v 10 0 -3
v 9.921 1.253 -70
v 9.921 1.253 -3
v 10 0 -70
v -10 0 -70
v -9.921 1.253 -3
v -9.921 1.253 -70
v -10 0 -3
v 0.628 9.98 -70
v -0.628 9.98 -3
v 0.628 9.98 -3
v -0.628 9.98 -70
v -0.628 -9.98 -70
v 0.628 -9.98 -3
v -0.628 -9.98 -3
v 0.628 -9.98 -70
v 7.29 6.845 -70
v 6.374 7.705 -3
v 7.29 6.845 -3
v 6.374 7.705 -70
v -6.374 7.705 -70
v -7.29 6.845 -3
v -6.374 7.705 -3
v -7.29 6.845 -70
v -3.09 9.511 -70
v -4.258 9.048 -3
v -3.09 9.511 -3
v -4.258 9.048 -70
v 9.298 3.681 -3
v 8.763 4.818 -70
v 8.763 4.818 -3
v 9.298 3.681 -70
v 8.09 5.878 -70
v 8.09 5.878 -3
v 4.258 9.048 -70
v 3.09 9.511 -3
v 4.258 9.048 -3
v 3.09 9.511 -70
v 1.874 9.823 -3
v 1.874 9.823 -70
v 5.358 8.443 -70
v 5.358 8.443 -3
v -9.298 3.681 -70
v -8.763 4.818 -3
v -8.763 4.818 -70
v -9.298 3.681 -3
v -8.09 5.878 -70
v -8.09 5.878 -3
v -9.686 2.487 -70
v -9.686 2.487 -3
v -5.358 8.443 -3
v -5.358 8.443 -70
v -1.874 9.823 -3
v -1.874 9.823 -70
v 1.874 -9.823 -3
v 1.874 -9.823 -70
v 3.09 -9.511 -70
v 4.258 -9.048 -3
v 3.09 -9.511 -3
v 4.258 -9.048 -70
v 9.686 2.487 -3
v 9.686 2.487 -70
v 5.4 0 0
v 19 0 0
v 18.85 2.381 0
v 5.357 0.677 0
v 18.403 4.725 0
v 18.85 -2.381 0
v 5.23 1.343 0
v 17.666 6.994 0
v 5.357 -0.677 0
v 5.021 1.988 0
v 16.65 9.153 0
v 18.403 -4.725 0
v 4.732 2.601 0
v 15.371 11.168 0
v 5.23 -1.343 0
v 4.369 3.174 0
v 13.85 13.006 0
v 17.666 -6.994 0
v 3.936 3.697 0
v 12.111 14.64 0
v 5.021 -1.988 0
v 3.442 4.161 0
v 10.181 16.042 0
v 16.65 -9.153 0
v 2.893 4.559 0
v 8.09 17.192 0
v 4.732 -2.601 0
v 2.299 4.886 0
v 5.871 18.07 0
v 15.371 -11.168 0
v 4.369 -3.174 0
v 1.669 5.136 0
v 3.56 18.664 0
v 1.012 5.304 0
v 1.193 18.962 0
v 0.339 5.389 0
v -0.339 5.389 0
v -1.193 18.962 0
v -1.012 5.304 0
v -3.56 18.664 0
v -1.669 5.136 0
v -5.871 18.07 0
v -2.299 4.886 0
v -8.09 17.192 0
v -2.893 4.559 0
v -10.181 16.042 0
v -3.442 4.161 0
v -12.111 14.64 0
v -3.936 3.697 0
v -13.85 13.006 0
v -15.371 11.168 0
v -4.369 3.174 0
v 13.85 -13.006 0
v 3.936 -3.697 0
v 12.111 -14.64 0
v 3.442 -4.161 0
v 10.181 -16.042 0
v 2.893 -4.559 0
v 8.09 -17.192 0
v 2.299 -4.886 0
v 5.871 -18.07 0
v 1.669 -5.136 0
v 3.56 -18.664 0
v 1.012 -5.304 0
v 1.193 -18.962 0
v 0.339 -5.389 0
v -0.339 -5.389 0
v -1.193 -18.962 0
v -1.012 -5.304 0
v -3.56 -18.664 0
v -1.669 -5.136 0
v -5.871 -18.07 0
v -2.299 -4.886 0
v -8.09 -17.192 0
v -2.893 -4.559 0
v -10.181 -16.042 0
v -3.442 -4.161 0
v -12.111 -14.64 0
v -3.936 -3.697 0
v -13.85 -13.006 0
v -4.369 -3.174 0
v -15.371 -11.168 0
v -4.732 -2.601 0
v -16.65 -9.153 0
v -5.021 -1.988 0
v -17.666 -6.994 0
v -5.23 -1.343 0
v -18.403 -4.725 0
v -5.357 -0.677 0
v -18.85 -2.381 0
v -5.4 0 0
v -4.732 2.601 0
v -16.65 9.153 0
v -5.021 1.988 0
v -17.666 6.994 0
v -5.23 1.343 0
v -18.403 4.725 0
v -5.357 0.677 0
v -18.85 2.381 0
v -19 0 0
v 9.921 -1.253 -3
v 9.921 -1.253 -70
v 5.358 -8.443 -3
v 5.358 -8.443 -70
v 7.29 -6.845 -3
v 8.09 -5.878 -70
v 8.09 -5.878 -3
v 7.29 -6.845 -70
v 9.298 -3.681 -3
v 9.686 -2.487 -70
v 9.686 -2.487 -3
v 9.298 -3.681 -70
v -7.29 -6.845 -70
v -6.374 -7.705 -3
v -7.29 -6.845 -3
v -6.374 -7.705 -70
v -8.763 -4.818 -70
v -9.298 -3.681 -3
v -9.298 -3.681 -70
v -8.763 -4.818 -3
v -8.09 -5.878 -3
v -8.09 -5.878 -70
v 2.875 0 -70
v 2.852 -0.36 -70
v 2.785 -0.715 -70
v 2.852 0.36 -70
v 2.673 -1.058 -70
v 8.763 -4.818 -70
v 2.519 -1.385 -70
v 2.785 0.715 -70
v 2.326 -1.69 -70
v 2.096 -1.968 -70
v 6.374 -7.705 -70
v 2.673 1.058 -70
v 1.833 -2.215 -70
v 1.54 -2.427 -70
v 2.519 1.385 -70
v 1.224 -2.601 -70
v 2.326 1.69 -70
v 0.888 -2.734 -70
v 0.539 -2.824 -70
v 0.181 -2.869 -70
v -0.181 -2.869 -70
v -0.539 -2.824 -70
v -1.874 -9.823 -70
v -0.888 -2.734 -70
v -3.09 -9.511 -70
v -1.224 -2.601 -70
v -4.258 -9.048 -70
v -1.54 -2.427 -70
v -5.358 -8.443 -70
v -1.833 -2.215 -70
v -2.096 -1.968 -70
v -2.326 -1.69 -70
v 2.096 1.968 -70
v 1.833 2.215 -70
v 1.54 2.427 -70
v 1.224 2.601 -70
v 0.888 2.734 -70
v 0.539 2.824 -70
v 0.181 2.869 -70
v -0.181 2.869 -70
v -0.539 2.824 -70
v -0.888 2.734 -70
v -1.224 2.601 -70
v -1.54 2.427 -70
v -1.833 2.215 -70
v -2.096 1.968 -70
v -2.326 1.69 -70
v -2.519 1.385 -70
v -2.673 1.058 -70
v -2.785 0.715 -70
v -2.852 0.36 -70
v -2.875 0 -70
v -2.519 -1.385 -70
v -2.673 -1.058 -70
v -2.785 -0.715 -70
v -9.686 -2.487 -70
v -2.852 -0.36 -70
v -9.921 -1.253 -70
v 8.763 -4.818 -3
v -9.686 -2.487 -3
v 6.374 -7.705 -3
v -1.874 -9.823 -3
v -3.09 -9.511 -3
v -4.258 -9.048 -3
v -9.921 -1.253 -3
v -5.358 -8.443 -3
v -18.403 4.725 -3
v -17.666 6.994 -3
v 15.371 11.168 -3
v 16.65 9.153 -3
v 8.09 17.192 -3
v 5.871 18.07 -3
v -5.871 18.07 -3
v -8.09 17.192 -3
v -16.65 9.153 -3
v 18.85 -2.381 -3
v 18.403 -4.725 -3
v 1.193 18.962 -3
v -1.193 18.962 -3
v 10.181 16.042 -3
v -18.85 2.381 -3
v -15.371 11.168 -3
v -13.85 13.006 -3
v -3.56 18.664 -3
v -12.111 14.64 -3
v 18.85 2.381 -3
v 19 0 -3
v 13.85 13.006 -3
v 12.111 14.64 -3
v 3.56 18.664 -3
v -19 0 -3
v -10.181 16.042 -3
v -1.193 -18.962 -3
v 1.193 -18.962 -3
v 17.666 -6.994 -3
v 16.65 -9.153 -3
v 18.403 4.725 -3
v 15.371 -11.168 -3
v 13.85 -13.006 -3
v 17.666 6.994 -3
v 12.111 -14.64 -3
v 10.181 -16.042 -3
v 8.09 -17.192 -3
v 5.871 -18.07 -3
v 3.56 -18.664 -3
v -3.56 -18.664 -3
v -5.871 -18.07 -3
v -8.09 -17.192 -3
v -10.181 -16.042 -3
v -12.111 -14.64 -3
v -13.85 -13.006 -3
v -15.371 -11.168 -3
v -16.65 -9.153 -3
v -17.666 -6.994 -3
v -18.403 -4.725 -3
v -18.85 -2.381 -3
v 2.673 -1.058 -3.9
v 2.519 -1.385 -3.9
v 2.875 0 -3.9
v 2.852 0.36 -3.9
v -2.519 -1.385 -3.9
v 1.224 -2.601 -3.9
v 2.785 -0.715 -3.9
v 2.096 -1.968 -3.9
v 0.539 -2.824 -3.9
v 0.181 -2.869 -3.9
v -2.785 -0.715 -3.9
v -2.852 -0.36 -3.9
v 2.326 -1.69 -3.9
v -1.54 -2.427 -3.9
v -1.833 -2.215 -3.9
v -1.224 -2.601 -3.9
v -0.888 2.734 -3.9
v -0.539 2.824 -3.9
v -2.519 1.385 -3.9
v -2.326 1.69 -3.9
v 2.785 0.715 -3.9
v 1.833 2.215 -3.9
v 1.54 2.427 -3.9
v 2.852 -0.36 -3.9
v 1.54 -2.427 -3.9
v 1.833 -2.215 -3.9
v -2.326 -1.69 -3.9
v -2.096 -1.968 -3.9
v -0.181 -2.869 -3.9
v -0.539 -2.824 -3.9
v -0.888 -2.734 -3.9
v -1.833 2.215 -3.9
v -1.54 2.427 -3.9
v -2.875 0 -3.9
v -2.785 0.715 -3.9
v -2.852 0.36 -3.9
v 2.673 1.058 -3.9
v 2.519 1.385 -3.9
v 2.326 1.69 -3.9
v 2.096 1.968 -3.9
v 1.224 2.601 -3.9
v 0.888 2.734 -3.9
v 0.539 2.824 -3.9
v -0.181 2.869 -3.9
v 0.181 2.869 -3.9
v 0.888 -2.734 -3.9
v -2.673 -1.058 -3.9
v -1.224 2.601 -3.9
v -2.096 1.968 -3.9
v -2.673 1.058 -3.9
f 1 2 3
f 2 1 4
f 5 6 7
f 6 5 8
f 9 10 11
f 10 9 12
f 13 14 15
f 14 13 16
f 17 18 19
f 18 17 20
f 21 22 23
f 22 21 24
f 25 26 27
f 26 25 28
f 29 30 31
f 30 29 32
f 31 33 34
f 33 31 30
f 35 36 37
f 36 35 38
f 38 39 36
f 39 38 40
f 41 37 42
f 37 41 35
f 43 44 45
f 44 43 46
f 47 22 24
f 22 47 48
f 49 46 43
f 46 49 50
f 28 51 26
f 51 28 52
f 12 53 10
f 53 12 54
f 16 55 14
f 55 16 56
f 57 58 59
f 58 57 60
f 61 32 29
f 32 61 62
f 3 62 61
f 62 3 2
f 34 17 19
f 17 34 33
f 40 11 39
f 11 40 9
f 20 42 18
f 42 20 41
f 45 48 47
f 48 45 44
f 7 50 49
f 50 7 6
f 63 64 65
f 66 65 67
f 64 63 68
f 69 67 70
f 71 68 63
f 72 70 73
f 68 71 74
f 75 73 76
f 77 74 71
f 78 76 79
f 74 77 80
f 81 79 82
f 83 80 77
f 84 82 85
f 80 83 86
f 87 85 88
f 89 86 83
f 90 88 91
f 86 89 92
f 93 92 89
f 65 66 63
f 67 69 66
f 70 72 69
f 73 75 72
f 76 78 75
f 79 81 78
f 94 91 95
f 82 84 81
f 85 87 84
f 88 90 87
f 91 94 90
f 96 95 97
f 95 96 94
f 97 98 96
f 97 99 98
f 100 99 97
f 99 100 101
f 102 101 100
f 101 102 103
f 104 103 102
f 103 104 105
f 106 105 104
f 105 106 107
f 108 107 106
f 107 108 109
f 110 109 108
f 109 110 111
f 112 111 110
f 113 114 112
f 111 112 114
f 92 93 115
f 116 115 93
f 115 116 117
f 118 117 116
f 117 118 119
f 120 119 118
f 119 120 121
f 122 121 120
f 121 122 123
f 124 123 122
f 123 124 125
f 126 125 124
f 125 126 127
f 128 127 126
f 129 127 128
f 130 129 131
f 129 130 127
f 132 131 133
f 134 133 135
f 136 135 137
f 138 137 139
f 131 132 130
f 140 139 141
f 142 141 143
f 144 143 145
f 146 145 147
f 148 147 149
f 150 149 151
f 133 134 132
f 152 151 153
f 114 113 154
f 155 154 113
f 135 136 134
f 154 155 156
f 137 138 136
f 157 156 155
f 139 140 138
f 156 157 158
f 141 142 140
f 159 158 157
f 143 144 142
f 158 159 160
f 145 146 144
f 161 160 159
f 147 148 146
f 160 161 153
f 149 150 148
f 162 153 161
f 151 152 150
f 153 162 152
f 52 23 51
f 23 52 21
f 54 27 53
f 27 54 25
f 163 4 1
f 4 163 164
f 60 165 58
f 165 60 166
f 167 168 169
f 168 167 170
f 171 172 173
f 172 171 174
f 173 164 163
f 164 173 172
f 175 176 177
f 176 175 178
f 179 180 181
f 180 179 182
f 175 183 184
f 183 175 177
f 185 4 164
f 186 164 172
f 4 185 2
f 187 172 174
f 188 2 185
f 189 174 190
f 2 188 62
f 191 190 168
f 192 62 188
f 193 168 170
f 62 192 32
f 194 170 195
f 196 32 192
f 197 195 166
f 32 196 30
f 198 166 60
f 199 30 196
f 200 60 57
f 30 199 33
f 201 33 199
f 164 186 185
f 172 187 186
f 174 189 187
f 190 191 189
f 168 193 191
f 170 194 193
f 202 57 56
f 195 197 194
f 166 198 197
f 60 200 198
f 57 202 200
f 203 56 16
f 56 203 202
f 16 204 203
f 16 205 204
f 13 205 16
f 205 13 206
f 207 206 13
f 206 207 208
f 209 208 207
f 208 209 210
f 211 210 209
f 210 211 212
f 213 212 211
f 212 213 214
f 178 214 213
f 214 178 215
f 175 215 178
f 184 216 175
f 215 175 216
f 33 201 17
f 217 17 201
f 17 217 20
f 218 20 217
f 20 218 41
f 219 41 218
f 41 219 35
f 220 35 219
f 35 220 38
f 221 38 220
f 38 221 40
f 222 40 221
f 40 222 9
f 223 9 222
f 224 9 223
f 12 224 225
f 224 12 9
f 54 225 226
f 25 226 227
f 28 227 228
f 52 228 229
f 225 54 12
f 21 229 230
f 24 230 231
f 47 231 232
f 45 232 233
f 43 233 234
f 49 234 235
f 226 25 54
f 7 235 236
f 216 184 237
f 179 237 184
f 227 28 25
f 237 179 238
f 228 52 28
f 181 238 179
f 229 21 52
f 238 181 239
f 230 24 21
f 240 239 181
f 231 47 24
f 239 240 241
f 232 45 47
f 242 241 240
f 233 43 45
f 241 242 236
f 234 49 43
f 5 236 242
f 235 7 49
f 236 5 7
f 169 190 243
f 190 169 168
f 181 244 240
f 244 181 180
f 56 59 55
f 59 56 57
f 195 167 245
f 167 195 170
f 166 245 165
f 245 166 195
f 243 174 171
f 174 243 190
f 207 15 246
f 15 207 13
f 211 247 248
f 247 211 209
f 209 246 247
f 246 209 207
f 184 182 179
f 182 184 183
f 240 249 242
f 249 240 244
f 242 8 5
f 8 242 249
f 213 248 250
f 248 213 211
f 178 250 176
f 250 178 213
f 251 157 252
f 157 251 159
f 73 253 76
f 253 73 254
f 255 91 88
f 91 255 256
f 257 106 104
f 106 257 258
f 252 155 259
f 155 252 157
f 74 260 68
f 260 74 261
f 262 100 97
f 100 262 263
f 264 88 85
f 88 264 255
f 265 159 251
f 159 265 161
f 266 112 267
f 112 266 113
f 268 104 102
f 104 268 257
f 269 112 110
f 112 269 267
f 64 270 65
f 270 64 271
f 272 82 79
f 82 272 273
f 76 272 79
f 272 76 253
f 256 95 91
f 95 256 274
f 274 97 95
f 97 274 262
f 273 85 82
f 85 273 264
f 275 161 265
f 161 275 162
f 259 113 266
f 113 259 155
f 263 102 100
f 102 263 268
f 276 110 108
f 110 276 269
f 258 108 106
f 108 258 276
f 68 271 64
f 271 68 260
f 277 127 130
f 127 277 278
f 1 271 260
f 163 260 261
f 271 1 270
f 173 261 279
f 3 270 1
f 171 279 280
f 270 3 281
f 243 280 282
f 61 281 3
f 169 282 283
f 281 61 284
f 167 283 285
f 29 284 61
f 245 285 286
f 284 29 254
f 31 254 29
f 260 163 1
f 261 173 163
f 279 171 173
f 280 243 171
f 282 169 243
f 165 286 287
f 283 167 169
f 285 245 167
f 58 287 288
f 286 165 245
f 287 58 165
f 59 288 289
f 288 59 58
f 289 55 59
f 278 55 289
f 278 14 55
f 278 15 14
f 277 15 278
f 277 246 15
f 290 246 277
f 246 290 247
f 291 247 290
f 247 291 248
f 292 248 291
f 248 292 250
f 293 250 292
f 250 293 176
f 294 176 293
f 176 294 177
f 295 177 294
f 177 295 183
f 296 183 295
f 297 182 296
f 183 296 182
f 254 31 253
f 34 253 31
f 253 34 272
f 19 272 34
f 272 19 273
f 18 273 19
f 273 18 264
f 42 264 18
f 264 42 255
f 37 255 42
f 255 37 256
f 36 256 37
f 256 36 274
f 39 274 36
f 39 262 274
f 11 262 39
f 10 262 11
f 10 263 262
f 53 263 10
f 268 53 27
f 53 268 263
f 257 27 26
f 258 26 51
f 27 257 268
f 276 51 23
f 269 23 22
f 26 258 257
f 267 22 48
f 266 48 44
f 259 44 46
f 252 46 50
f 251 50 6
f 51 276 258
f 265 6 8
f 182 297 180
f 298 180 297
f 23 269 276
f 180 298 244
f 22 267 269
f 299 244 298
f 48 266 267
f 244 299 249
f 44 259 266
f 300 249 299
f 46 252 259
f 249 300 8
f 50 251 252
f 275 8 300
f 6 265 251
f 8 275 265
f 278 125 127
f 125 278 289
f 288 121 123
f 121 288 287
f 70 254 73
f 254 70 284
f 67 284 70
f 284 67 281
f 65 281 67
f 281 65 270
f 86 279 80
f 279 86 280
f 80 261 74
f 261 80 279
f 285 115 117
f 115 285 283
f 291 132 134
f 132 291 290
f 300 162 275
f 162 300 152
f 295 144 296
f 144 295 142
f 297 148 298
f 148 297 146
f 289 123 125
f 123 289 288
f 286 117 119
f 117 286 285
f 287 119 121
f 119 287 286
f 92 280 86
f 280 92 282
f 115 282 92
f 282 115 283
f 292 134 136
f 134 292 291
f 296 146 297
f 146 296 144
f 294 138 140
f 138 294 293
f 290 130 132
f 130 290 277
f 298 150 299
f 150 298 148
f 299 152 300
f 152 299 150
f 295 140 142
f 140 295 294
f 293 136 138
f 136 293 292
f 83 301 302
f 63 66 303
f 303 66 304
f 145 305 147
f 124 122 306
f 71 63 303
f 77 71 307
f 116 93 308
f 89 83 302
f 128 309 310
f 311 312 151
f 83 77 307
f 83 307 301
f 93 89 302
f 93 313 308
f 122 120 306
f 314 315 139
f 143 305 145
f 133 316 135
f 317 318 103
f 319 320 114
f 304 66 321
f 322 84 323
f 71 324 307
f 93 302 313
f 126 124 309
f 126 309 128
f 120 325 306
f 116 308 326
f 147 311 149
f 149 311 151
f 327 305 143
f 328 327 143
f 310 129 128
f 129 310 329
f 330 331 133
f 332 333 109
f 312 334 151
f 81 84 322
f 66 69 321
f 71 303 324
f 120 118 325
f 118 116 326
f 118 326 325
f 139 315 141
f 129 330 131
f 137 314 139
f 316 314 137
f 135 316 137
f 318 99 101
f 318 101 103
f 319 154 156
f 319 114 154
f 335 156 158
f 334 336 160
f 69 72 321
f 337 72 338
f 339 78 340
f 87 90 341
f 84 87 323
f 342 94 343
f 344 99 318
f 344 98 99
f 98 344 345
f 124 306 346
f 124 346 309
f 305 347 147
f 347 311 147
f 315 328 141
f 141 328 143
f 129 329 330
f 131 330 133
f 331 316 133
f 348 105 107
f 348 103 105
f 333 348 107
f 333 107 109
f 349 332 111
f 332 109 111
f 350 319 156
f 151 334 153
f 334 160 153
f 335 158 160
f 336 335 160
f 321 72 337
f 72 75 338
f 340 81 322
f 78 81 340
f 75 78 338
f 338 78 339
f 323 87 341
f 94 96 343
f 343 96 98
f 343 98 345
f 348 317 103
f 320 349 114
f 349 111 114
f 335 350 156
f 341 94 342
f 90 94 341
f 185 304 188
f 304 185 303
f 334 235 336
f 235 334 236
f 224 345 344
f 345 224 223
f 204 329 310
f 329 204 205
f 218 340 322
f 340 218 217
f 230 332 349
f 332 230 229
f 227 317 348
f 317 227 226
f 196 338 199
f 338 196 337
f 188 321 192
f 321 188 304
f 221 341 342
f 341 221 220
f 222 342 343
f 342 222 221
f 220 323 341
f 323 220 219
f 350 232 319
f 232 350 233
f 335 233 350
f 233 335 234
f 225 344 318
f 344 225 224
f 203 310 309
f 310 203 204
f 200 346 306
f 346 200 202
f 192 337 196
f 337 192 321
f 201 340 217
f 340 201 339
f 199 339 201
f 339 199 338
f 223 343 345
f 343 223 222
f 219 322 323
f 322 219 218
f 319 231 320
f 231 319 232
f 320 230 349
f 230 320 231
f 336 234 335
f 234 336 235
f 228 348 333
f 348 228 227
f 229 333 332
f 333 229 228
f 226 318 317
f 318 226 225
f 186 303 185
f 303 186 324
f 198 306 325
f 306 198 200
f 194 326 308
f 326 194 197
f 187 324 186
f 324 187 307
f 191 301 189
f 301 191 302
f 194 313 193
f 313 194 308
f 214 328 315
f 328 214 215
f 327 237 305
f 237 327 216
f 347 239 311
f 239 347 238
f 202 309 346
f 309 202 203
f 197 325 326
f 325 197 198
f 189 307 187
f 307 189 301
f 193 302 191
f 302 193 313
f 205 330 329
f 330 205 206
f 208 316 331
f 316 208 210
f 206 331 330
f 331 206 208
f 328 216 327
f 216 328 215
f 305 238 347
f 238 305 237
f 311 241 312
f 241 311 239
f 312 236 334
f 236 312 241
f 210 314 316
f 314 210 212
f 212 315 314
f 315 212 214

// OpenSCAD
$fn = 50;


difference() {
	union() {
		translate(v = [0, 0, -70.0000000000]) {
			cylinder(h = 70, r = 10.0000000000);
		}
		translate(v = [0, 0, -3.0000000000]) {
			cylinder(h = 3, r = 19.0000000000);
		}
	}
	union() {
		translate(v = [0, 0, 0]) {
			rotate(a = [0, 0, 0]) {
				difference() {
					union() {
						#translate(v = [0, 0, -70.0000000000]) {
							cylinder(h = 70, r = 2.6000000000);
						}
						#translate(v = [0, 0, -3.9000000000]) {
							cylinder(h = 3.9000000000, r = 10.0000000000, r1 = 2.8750000000, r2 = 5.4000000000);
						}
						#translate(v = [0, 0, -70.0000000000]) {
							cylinder(h = 70, r = 2.8750000000);
						}
						#translate(v = [0, 0, -70.0000000000]) {
							cylinder(h = 70, r = 2.6000000000);
						}
					}
					union();
				}
			}
		}
	}
}
